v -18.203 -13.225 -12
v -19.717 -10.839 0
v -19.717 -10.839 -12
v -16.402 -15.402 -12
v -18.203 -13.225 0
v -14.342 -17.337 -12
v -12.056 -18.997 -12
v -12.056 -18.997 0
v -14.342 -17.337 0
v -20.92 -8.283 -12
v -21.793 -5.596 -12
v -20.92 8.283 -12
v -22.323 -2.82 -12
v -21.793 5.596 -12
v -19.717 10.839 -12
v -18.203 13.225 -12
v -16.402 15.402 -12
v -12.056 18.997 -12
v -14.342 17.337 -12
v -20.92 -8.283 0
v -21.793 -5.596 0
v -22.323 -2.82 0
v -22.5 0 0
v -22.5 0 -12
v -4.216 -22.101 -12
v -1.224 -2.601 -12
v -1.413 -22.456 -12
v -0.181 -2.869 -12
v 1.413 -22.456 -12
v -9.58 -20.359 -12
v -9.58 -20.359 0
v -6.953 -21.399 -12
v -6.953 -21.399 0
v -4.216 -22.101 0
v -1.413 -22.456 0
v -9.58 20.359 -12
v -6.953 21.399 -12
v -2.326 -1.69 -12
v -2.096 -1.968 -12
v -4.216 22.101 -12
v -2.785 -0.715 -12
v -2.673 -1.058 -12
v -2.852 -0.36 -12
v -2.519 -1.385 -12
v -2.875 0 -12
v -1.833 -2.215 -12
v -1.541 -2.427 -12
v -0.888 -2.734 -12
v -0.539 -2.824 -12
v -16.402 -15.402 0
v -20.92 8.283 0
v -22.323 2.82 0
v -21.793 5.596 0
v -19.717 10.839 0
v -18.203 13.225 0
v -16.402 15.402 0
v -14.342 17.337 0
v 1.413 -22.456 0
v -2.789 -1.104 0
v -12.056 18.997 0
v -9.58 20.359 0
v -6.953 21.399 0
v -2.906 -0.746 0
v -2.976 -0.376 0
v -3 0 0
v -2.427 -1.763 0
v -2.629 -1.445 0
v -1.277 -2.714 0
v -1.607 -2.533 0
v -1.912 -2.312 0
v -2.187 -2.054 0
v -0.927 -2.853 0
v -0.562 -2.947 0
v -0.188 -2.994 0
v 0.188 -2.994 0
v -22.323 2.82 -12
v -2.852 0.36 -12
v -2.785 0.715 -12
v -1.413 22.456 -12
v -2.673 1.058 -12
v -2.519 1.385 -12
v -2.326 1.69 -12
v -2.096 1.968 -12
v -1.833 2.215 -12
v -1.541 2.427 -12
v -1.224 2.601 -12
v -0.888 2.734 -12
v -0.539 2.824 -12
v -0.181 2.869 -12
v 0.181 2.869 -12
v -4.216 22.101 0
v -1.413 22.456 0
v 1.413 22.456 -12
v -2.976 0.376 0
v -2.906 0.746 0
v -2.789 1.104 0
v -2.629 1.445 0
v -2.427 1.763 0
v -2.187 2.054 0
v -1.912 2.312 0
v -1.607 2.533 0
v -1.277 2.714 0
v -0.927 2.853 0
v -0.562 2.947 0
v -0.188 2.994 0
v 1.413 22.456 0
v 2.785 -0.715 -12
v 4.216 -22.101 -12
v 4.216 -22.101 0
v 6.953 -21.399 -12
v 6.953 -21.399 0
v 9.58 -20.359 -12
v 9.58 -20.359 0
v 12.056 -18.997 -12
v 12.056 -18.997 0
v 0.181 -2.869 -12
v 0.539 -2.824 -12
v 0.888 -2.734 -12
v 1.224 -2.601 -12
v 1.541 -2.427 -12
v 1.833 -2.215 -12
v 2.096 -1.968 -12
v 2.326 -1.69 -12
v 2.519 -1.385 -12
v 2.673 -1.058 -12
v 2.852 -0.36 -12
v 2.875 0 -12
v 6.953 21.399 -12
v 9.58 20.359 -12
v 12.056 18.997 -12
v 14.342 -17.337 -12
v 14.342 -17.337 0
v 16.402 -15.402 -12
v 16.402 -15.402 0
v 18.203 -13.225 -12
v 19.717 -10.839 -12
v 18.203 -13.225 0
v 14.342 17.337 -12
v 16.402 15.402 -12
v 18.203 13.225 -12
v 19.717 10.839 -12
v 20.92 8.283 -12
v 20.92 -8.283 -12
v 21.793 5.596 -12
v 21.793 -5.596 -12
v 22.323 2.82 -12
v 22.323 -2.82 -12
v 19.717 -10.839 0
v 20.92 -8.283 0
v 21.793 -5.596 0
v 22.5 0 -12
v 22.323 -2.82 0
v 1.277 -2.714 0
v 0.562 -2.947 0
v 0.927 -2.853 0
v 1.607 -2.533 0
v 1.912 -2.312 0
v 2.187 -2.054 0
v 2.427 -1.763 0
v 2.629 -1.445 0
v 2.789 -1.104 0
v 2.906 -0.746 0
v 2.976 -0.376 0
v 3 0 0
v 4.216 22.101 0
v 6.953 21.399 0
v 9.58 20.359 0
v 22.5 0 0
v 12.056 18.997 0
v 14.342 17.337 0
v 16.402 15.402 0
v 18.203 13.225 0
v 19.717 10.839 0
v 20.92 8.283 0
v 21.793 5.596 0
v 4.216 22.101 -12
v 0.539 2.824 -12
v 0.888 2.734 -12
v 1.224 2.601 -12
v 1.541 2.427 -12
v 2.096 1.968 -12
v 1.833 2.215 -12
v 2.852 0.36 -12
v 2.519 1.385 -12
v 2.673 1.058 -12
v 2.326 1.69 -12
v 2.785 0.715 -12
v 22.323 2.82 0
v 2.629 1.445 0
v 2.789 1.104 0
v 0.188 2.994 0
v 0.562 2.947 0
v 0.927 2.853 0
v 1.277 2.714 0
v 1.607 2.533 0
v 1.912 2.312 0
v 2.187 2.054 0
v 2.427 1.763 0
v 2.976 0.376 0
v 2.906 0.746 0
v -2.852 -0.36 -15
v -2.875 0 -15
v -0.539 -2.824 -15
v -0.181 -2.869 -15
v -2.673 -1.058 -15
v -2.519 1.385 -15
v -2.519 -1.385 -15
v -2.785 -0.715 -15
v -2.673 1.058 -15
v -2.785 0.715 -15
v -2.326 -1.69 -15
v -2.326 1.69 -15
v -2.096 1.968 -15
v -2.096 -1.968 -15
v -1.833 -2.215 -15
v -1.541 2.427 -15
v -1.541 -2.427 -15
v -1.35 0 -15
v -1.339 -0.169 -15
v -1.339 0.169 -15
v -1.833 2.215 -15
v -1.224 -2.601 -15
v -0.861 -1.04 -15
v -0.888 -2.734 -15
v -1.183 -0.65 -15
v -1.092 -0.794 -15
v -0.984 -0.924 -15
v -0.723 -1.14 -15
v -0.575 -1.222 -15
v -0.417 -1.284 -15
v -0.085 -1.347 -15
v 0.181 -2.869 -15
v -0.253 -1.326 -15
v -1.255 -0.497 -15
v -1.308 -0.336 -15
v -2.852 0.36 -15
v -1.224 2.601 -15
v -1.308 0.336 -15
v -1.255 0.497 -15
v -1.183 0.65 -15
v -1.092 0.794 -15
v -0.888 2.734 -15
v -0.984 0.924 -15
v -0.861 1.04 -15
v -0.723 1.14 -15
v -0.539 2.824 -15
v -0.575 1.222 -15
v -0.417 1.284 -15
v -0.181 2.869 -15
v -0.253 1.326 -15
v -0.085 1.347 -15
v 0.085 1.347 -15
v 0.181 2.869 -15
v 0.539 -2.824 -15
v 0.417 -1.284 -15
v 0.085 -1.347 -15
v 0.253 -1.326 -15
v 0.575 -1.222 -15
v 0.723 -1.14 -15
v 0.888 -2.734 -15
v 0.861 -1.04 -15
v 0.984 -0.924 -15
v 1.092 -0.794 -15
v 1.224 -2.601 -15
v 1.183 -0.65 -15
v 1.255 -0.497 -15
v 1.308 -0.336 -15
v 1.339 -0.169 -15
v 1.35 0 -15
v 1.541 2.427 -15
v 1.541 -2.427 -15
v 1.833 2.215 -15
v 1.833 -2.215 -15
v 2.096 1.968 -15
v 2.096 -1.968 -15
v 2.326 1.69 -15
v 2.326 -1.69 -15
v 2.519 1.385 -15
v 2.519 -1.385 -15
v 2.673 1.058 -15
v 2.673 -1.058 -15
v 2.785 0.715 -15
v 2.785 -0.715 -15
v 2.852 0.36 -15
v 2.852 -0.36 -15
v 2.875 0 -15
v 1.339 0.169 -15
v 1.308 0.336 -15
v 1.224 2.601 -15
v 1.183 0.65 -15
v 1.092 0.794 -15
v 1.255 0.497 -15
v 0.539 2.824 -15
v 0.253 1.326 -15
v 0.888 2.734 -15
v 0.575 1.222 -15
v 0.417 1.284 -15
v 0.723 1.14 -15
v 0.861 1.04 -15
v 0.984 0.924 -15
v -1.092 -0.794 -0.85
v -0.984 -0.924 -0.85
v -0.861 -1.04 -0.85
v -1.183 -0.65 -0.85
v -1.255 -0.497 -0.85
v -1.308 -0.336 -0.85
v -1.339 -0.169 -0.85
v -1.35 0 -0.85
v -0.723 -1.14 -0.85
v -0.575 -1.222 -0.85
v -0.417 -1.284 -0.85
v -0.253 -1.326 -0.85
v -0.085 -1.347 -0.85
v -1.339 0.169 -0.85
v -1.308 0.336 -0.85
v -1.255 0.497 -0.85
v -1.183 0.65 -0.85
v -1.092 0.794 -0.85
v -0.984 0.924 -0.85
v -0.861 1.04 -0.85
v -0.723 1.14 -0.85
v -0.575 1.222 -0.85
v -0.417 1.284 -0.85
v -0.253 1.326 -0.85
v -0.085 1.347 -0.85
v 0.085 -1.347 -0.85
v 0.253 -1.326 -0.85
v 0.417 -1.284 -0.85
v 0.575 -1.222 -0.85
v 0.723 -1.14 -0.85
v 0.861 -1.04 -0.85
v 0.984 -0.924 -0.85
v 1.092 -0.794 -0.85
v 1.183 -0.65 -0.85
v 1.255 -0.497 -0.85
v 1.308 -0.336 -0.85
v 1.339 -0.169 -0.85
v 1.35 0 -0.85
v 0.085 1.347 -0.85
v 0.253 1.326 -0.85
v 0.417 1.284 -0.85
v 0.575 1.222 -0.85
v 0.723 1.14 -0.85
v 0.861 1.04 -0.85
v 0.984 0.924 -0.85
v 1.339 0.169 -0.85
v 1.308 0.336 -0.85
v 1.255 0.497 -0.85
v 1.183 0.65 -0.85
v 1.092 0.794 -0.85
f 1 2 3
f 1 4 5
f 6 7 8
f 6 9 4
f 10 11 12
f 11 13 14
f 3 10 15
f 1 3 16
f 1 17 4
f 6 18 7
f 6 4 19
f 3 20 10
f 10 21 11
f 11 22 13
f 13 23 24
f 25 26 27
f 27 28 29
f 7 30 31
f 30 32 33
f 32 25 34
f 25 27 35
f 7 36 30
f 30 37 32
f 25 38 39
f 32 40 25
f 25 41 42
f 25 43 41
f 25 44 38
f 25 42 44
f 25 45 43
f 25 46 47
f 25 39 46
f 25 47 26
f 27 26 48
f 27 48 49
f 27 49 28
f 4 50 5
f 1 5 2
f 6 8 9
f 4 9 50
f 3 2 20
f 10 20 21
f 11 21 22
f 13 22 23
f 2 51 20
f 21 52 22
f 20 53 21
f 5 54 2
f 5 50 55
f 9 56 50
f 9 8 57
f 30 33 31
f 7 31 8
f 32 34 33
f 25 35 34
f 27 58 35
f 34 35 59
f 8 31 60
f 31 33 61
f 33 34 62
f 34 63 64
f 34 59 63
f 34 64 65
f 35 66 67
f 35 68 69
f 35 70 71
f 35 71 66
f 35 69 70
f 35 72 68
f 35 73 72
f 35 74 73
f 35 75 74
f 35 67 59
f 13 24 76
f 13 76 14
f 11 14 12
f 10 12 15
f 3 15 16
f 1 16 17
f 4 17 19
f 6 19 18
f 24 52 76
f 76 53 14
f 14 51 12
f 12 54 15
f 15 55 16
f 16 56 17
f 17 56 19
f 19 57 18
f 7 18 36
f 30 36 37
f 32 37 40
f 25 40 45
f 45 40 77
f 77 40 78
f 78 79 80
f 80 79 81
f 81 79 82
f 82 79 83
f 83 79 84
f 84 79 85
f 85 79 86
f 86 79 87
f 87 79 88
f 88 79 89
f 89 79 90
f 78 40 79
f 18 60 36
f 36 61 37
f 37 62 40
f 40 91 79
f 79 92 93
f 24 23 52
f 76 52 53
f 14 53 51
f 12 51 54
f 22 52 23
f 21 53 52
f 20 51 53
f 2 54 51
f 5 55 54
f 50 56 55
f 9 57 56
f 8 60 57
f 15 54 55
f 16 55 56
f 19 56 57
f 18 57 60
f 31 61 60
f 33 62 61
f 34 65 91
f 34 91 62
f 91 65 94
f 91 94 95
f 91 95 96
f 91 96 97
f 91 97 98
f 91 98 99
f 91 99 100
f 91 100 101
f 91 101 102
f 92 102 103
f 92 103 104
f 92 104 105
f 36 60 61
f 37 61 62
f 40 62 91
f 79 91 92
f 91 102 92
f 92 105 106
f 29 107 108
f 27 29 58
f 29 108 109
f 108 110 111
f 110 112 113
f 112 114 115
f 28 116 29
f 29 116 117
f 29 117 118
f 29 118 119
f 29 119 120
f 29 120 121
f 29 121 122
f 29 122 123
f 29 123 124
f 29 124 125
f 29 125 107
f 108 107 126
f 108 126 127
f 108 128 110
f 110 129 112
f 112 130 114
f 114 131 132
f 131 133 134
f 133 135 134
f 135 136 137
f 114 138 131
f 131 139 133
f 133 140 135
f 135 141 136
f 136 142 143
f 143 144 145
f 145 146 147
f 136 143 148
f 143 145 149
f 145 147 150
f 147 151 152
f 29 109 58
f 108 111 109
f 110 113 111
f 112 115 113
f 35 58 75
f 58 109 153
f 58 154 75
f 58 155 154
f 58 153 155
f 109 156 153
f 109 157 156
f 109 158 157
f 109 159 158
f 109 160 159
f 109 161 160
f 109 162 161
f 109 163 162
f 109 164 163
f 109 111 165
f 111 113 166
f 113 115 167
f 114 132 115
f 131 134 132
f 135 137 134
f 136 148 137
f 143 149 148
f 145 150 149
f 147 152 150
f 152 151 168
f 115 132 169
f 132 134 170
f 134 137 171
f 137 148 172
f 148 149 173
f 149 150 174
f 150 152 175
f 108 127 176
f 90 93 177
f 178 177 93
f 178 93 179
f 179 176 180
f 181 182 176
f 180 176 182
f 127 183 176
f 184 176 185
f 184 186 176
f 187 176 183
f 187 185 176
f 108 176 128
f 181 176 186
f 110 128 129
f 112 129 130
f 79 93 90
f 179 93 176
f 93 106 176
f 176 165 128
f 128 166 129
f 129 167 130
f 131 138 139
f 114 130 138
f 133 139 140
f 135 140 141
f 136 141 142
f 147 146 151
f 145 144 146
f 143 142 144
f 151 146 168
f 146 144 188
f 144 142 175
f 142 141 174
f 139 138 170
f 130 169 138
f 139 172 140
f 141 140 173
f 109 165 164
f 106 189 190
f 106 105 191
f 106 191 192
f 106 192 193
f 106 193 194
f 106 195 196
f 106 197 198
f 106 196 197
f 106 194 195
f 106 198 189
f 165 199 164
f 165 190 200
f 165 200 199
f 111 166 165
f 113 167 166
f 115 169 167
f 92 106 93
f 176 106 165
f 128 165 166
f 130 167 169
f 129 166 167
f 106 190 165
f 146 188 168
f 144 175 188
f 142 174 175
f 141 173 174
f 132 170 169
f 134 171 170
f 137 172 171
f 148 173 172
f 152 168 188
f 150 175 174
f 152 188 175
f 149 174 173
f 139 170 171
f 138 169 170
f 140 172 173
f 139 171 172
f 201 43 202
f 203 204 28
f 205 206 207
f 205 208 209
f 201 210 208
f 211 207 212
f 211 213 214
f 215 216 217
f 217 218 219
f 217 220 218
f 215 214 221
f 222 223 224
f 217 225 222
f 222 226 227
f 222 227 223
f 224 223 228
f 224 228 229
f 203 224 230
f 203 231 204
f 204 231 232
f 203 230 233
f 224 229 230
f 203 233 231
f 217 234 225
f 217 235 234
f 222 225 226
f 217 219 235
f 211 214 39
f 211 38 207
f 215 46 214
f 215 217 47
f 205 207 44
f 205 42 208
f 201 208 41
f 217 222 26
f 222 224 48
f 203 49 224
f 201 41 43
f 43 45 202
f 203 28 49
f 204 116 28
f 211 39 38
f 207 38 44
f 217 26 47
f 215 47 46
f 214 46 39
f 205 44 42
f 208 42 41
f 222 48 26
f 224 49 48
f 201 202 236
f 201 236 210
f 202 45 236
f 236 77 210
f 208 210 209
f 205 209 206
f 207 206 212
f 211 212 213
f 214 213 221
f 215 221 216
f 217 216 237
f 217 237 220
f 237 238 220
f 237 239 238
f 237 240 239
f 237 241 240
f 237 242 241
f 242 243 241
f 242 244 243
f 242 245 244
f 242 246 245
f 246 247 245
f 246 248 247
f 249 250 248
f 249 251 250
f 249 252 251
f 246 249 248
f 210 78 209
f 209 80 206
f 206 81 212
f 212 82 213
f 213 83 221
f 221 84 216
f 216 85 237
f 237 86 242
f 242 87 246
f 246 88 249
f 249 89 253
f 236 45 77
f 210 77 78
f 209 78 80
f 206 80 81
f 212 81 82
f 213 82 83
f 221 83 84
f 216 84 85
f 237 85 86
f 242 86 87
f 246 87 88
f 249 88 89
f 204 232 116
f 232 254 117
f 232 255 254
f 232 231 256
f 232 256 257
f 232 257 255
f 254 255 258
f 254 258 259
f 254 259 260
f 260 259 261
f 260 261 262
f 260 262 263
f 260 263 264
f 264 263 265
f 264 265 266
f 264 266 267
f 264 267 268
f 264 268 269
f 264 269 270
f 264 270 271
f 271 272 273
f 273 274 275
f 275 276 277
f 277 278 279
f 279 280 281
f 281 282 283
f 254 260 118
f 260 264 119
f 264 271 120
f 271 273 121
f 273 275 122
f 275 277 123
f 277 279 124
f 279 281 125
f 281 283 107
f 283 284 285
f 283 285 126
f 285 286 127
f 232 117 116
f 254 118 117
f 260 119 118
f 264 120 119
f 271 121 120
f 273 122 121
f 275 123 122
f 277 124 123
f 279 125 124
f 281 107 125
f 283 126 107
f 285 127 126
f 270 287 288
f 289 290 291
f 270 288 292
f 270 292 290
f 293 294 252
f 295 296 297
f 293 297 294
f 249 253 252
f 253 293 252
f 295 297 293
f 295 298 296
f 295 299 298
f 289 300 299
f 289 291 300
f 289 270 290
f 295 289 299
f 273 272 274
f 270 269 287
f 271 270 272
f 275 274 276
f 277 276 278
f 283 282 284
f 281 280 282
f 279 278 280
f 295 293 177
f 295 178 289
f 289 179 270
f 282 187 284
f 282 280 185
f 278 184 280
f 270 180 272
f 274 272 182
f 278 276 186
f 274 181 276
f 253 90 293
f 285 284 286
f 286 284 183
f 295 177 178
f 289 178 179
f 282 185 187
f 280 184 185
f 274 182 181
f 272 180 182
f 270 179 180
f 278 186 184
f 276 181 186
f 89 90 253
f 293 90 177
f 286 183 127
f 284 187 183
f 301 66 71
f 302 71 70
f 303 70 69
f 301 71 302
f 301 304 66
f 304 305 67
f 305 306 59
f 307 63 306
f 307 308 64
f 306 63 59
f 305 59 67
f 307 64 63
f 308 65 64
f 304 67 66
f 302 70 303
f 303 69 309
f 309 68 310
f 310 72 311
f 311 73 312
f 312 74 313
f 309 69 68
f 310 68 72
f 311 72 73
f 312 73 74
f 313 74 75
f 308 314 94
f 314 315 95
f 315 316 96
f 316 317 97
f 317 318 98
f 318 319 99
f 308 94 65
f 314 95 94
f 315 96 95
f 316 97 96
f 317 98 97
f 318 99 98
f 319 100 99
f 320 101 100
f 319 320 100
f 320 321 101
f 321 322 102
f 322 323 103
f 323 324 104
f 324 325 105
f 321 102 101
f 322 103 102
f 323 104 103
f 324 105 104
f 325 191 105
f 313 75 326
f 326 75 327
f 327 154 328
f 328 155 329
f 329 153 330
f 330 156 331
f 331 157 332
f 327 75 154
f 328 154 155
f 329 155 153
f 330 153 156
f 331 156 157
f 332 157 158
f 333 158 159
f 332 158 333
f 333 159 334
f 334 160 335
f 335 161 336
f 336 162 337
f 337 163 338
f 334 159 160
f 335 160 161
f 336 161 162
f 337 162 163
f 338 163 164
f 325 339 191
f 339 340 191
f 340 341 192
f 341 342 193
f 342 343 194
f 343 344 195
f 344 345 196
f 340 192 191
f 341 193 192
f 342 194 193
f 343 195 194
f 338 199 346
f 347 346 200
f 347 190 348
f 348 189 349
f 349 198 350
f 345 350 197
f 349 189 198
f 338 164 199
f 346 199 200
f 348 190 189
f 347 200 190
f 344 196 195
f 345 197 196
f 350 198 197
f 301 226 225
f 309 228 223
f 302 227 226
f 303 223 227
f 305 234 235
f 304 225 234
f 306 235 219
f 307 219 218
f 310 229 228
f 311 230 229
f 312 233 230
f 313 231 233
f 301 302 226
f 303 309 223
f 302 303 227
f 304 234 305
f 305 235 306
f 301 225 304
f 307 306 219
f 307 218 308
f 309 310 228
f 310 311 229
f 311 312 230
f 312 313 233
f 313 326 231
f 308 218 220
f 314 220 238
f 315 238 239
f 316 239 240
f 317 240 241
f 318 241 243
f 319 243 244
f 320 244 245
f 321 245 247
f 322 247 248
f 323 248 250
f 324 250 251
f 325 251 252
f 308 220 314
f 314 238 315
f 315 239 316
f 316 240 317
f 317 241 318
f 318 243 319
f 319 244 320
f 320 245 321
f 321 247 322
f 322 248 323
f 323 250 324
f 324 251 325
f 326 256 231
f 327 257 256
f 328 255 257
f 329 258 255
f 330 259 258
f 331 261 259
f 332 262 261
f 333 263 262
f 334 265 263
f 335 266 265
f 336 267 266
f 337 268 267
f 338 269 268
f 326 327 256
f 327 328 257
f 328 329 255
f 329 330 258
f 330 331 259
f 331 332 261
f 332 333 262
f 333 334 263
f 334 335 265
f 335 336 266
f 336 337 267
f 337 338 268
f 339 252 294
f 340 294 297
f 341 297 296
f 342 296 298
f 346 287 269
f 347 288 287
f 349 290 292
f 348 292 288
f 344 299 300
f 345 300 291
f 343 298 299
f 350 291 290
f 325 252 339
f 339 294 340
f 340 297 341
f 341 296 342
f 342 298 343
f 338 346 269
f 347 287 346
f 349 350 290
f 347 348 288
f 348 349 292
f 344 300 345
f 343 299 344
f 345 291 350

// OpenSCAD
$fn = 50;

difference() {
	union() {
		translate(v = [0, 0, -12.0]) {
			cylinder(h = 12, r = 22.5);
		}
		#translate(v = [0, 0, -15.0]) {
			cylinder(h = 15, r = 2.875);
		}
	}
	union() {
		translate(v = [0, 0, 0]) {
			rotate(a = [0, 0, 0]) {
				difference() {
					union() {
						translate(v = [0, 0, -15.0]) {
							cylinder(h = 15, r = 1.0);
						}
						translate(v = [0, 0, -0.85]) {
							cylinder(h = 0.85, r1 = 1.35, r2 = 3.0);
						}
						translate(v = [0, 0, -15.0]) {
							cylinder(h = 15, r = 1.35);
						}
						translate(v = [0, 0, -15.0]) {
							cylinder(h = 15, r = 1.0);
						}
					}
					union();
				}
			}
		}
	}
}
